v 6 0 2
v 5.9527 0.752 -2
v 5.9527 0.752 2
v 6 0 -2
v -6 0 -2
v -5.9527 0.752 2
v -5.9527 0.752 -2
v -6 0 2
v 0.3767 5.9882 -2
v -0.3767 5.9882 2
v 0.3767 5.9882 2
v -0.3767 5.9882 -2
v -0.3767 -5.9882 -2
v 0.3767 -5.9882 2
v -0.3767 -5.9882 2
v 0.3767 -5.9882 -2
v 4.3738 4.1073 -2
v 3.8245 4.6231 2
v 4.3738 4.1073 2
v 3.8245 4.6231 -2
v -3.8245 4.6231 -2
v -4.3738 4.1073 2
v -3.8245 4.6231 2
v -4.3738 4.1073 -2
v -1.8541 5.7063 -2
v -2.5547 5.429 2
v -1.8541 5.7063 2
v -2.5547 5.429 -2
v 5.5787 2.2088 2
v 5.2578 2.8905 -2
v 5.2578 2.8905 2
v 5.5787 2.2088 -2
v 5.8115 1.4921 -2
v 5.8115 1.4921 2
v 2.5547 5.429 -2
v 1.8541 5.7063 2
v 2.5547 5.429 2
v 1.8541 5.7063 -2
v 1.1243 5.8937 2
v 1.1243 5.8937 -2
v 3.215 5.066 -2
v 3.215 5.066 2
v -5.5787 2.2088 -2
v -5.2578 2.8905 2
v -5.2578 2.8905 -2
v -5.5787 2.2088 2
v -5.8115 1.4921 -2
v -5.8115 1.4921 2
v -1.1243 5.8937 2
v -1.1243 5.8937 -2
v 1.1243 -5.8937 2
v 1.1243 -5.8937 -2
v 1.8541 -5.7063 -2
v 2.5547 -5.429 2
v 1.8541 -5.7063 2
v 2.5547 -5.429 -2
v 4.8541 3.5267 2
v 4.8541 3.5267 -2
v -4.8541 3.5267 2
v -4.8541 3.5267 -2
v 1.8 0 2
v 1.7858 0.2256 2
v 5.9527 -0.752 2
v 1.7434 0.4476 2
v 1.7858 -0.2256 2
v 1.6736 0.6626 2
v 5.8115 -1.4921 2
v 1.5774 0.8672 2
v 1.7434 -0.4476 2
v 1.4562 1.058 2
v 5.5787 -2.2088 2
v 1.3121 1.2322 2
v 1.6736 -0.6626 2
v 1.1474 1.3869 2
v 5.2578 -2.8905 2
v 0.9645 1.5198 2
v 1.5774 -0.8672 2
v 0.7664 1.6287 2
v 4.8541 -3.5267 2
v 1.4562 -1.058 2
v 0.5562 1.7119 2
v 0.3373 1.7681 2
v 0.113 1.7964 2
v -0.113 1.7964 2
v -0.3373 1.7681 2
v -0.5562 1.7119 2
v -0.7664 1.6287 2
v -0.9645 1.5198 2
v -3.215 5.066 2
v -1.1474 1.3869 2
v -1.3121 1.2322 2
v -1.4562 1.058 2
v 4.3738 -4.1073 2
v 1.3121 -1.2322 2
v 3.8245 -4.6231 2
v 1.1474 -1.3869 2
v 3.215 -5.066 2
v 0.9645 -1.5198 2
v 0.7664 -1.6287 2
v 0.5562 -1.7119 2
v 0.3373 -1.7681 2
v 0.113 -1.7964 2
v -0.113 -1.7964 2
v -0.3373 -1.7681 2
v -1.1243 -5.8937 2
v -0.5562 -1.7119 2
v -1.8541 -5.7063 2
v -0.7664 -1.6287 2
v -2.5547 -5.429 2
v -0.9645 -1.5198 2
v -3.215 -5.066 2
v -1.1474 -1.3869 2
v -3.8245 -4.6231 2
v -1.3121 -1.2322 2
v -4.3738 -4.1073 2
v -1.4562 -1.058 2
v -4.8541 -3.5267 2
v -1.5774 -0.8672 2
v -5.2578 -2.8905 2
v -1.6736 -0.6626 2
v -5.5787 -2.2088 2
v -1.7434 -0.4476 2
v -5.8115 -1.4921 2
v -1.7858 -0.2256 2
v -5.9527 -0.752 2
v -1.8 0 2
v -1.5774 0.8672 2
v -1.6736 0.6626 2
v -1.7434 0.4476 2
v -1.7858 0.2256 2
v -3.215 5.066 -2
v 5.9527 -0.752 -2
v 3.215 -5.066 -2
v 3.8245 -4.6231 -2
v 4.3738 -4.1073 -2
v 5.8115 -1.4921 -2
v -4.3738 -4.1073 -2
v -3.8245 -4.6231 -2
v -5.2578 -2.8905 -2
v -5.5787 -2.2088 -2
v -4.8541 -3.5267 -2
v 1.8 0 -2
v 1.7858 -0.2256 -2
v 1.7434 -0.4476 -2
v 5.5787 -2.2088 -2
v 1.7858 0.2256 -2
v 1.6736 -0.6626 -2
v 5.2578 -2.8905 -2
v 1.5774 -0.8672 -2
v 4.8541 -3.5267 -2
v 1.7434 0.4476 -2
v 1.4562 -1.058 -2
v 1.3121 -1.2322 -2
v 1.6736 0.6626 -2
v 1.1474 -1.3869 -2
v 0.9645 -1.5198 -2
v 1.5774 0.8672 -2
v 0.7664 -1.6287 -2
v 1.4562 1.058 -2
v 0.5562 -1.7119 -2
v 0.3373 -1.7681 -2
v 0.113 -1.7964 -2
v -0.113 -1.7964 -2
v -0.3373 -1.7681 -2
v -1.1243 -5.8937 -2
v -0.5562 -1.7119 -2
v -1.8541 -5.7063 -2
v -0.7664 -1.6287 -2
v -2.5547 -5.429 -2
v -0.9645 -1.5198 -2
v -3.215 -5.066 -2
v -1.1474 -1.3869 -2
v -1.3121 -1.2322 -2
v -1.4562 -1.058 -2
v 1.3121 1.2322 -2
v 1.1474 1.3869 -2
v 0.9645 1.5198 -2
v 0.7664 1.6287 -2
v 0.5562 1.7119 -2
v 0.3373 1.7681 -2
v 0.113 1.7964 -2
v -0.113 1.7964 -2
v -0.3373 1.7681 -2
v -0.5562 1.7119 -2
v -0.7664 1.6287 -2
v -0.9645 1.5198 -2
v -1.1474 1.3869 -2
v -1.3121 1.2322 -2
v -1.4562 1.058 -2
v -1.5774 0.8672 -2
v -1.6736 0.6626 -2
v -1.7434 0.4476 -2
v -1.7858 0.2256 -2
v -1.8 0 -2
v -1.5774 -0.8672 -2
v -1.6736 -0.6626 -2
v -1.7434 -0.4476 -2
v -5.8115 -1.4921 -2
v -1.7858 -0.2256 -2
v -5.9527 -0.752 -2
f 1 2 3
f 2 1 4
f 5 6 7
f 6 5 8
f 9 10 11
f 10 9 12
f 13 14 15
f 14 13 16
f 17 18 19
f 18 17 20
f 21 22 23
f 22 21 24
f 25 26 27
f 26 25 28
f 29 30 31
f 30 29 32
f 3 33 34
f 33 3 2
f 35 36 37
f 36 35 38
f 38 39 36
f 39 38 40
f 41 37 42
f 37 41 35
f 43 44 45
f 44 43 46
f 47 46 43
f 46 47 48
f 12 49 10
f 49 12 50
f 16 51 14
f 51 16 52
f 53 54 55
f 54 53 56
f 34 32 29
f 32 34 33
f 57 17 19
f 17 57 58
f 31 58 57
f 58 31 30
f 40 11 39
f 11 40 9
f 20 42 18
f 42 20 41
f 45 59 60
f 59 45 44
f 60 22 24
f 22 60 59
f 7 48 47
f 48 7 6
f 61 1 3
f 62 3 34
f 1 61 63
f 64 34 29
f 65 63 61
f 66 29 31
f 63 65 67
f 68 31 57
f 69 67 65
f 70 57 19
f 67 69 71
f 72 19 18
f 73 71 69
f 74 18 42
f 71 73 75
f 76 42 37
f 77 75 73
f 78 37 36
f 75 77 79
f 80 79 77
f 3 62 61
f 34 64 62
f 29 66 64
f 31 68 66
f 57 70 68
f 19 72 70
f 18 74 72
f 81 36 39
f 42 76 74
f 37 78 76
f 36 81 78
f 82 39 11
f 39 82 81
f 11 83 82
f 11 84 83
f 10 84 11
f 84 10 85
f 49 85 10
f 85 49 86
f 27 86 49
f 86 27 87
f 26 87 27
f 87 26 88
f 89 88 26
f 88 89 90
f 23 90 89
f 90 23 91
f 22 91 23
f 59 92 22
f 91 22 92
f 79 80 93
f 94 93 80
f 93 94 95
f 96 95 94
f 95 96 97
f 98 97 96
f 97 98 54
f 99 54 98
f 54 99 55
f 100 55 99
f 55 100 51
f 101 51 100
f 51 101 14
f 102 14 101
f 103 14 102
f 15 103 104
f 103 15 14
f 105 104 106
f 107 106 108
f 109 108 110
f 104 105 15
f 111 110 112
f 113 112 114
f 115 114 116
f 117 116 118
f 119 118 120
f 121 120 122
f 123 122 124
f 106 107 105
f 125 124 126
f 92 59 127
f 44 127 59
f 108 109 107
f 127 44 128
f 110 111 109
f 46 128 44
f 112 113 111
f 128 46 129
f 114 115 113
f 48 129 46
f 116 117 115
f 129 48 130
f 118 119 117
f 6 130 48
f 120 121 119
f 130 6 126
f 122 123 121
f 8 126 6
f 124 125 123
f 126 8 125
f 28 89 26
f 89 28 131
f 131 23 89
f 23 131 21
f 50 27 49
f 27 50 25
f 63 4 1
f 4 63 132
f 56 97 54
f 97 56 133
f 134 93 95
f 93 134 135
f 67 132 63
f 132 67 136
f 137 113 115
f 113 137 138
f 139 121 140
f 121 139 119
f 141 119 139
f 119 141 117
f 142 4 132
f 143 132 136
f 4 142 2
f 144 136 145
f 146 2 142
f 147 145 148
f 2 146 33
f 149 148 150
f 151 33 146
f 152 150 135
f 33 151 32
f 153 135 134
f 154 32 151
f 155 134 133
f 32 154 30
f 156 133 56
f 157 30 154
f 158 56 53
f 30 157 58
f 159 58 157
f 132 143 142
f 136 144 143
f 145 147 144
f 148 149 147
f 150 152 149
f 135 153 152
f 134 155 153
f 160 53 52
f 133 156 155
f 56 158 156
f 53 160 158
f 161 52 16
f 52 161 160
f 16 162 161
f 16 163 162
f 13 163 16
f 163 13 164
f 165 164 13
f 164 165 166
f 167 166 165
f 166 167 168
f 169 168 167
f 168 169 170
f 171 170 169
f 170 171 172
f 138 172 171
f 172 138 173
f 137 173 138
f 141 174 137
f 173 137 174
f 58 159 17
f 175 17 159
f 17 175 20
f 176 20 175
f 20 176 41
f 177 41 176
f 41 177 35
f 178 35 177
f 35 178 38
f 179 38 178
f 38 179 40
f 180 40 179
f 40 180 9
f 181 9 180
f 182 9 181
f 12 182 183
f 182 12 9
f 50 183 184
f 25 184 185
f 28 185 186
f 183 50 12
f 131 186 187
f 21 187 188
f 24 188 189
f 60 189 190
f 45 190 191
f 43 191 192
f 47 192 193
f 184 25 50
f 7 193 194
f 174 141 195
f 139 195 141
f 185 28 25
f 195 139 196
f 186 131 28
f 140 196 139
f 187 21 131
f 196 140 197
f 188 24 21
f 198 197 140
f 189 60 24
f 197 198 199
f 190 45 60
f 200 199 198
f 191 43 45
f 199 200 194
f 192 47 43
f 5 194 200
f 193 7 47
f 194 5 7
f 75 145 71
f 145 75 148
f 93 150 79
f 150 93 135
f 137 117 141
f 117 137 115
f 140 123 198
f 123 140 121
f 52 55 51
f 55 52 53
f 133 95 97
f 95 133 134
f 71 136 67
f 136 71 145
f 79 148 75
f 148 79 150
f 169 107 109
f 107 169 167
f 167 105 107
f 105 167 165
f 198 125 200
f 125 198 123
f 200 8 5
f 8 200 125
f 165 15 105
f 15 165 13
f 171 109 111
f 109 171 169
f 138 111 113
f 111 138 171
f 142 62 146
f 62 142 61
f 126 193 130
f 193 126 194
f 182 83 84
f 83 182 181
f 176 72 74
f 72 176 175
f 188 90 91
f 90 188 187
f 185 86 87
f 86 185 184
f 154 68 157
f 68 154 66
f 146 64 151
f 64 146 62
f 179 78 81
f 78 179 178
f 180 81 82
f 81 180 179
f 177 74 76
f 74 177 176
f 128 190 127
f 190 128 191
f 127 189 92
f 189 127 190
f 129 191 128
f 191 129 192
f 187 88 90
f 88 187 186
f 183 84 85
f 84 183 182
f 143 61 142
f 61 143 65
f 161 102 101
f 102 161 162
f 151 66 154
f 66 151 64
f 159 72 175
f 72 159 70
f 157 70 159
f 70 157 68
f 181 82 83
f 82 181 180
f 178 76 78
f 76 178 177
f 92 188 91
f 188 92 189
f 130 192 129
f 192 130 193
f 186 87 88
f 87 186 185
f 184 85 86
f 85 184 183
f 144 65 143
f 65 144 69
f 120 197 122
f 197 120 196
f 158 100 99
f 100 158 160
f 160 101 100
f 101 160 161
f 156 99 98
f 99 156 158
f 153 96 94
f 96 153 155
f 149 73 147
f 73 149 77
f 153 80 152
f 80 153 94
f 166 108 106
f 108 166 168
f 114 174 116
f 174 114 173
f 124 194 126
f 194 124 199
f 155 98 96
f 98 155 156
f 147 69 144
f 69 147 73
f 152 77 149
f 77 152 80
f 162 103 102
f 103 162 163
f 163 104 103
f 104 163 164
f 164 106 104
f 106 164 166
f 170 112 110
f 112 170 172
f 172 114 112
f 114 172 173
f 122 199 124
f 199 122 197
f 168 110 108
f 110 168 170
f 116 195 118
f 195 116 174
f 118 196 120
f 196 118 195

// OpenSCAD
$fn = 50;


difference() {
	union() {
		translate(v = [0, 0, -2.0000000000]) {
			cylinder(h = 4, r = 6.0000000000);
		}
	}
	union() {
		translate(v = [0, 0, -100.0000000000]) {
			cylinder(h = 200, r = 1.8000000000);
		}
	}
}
